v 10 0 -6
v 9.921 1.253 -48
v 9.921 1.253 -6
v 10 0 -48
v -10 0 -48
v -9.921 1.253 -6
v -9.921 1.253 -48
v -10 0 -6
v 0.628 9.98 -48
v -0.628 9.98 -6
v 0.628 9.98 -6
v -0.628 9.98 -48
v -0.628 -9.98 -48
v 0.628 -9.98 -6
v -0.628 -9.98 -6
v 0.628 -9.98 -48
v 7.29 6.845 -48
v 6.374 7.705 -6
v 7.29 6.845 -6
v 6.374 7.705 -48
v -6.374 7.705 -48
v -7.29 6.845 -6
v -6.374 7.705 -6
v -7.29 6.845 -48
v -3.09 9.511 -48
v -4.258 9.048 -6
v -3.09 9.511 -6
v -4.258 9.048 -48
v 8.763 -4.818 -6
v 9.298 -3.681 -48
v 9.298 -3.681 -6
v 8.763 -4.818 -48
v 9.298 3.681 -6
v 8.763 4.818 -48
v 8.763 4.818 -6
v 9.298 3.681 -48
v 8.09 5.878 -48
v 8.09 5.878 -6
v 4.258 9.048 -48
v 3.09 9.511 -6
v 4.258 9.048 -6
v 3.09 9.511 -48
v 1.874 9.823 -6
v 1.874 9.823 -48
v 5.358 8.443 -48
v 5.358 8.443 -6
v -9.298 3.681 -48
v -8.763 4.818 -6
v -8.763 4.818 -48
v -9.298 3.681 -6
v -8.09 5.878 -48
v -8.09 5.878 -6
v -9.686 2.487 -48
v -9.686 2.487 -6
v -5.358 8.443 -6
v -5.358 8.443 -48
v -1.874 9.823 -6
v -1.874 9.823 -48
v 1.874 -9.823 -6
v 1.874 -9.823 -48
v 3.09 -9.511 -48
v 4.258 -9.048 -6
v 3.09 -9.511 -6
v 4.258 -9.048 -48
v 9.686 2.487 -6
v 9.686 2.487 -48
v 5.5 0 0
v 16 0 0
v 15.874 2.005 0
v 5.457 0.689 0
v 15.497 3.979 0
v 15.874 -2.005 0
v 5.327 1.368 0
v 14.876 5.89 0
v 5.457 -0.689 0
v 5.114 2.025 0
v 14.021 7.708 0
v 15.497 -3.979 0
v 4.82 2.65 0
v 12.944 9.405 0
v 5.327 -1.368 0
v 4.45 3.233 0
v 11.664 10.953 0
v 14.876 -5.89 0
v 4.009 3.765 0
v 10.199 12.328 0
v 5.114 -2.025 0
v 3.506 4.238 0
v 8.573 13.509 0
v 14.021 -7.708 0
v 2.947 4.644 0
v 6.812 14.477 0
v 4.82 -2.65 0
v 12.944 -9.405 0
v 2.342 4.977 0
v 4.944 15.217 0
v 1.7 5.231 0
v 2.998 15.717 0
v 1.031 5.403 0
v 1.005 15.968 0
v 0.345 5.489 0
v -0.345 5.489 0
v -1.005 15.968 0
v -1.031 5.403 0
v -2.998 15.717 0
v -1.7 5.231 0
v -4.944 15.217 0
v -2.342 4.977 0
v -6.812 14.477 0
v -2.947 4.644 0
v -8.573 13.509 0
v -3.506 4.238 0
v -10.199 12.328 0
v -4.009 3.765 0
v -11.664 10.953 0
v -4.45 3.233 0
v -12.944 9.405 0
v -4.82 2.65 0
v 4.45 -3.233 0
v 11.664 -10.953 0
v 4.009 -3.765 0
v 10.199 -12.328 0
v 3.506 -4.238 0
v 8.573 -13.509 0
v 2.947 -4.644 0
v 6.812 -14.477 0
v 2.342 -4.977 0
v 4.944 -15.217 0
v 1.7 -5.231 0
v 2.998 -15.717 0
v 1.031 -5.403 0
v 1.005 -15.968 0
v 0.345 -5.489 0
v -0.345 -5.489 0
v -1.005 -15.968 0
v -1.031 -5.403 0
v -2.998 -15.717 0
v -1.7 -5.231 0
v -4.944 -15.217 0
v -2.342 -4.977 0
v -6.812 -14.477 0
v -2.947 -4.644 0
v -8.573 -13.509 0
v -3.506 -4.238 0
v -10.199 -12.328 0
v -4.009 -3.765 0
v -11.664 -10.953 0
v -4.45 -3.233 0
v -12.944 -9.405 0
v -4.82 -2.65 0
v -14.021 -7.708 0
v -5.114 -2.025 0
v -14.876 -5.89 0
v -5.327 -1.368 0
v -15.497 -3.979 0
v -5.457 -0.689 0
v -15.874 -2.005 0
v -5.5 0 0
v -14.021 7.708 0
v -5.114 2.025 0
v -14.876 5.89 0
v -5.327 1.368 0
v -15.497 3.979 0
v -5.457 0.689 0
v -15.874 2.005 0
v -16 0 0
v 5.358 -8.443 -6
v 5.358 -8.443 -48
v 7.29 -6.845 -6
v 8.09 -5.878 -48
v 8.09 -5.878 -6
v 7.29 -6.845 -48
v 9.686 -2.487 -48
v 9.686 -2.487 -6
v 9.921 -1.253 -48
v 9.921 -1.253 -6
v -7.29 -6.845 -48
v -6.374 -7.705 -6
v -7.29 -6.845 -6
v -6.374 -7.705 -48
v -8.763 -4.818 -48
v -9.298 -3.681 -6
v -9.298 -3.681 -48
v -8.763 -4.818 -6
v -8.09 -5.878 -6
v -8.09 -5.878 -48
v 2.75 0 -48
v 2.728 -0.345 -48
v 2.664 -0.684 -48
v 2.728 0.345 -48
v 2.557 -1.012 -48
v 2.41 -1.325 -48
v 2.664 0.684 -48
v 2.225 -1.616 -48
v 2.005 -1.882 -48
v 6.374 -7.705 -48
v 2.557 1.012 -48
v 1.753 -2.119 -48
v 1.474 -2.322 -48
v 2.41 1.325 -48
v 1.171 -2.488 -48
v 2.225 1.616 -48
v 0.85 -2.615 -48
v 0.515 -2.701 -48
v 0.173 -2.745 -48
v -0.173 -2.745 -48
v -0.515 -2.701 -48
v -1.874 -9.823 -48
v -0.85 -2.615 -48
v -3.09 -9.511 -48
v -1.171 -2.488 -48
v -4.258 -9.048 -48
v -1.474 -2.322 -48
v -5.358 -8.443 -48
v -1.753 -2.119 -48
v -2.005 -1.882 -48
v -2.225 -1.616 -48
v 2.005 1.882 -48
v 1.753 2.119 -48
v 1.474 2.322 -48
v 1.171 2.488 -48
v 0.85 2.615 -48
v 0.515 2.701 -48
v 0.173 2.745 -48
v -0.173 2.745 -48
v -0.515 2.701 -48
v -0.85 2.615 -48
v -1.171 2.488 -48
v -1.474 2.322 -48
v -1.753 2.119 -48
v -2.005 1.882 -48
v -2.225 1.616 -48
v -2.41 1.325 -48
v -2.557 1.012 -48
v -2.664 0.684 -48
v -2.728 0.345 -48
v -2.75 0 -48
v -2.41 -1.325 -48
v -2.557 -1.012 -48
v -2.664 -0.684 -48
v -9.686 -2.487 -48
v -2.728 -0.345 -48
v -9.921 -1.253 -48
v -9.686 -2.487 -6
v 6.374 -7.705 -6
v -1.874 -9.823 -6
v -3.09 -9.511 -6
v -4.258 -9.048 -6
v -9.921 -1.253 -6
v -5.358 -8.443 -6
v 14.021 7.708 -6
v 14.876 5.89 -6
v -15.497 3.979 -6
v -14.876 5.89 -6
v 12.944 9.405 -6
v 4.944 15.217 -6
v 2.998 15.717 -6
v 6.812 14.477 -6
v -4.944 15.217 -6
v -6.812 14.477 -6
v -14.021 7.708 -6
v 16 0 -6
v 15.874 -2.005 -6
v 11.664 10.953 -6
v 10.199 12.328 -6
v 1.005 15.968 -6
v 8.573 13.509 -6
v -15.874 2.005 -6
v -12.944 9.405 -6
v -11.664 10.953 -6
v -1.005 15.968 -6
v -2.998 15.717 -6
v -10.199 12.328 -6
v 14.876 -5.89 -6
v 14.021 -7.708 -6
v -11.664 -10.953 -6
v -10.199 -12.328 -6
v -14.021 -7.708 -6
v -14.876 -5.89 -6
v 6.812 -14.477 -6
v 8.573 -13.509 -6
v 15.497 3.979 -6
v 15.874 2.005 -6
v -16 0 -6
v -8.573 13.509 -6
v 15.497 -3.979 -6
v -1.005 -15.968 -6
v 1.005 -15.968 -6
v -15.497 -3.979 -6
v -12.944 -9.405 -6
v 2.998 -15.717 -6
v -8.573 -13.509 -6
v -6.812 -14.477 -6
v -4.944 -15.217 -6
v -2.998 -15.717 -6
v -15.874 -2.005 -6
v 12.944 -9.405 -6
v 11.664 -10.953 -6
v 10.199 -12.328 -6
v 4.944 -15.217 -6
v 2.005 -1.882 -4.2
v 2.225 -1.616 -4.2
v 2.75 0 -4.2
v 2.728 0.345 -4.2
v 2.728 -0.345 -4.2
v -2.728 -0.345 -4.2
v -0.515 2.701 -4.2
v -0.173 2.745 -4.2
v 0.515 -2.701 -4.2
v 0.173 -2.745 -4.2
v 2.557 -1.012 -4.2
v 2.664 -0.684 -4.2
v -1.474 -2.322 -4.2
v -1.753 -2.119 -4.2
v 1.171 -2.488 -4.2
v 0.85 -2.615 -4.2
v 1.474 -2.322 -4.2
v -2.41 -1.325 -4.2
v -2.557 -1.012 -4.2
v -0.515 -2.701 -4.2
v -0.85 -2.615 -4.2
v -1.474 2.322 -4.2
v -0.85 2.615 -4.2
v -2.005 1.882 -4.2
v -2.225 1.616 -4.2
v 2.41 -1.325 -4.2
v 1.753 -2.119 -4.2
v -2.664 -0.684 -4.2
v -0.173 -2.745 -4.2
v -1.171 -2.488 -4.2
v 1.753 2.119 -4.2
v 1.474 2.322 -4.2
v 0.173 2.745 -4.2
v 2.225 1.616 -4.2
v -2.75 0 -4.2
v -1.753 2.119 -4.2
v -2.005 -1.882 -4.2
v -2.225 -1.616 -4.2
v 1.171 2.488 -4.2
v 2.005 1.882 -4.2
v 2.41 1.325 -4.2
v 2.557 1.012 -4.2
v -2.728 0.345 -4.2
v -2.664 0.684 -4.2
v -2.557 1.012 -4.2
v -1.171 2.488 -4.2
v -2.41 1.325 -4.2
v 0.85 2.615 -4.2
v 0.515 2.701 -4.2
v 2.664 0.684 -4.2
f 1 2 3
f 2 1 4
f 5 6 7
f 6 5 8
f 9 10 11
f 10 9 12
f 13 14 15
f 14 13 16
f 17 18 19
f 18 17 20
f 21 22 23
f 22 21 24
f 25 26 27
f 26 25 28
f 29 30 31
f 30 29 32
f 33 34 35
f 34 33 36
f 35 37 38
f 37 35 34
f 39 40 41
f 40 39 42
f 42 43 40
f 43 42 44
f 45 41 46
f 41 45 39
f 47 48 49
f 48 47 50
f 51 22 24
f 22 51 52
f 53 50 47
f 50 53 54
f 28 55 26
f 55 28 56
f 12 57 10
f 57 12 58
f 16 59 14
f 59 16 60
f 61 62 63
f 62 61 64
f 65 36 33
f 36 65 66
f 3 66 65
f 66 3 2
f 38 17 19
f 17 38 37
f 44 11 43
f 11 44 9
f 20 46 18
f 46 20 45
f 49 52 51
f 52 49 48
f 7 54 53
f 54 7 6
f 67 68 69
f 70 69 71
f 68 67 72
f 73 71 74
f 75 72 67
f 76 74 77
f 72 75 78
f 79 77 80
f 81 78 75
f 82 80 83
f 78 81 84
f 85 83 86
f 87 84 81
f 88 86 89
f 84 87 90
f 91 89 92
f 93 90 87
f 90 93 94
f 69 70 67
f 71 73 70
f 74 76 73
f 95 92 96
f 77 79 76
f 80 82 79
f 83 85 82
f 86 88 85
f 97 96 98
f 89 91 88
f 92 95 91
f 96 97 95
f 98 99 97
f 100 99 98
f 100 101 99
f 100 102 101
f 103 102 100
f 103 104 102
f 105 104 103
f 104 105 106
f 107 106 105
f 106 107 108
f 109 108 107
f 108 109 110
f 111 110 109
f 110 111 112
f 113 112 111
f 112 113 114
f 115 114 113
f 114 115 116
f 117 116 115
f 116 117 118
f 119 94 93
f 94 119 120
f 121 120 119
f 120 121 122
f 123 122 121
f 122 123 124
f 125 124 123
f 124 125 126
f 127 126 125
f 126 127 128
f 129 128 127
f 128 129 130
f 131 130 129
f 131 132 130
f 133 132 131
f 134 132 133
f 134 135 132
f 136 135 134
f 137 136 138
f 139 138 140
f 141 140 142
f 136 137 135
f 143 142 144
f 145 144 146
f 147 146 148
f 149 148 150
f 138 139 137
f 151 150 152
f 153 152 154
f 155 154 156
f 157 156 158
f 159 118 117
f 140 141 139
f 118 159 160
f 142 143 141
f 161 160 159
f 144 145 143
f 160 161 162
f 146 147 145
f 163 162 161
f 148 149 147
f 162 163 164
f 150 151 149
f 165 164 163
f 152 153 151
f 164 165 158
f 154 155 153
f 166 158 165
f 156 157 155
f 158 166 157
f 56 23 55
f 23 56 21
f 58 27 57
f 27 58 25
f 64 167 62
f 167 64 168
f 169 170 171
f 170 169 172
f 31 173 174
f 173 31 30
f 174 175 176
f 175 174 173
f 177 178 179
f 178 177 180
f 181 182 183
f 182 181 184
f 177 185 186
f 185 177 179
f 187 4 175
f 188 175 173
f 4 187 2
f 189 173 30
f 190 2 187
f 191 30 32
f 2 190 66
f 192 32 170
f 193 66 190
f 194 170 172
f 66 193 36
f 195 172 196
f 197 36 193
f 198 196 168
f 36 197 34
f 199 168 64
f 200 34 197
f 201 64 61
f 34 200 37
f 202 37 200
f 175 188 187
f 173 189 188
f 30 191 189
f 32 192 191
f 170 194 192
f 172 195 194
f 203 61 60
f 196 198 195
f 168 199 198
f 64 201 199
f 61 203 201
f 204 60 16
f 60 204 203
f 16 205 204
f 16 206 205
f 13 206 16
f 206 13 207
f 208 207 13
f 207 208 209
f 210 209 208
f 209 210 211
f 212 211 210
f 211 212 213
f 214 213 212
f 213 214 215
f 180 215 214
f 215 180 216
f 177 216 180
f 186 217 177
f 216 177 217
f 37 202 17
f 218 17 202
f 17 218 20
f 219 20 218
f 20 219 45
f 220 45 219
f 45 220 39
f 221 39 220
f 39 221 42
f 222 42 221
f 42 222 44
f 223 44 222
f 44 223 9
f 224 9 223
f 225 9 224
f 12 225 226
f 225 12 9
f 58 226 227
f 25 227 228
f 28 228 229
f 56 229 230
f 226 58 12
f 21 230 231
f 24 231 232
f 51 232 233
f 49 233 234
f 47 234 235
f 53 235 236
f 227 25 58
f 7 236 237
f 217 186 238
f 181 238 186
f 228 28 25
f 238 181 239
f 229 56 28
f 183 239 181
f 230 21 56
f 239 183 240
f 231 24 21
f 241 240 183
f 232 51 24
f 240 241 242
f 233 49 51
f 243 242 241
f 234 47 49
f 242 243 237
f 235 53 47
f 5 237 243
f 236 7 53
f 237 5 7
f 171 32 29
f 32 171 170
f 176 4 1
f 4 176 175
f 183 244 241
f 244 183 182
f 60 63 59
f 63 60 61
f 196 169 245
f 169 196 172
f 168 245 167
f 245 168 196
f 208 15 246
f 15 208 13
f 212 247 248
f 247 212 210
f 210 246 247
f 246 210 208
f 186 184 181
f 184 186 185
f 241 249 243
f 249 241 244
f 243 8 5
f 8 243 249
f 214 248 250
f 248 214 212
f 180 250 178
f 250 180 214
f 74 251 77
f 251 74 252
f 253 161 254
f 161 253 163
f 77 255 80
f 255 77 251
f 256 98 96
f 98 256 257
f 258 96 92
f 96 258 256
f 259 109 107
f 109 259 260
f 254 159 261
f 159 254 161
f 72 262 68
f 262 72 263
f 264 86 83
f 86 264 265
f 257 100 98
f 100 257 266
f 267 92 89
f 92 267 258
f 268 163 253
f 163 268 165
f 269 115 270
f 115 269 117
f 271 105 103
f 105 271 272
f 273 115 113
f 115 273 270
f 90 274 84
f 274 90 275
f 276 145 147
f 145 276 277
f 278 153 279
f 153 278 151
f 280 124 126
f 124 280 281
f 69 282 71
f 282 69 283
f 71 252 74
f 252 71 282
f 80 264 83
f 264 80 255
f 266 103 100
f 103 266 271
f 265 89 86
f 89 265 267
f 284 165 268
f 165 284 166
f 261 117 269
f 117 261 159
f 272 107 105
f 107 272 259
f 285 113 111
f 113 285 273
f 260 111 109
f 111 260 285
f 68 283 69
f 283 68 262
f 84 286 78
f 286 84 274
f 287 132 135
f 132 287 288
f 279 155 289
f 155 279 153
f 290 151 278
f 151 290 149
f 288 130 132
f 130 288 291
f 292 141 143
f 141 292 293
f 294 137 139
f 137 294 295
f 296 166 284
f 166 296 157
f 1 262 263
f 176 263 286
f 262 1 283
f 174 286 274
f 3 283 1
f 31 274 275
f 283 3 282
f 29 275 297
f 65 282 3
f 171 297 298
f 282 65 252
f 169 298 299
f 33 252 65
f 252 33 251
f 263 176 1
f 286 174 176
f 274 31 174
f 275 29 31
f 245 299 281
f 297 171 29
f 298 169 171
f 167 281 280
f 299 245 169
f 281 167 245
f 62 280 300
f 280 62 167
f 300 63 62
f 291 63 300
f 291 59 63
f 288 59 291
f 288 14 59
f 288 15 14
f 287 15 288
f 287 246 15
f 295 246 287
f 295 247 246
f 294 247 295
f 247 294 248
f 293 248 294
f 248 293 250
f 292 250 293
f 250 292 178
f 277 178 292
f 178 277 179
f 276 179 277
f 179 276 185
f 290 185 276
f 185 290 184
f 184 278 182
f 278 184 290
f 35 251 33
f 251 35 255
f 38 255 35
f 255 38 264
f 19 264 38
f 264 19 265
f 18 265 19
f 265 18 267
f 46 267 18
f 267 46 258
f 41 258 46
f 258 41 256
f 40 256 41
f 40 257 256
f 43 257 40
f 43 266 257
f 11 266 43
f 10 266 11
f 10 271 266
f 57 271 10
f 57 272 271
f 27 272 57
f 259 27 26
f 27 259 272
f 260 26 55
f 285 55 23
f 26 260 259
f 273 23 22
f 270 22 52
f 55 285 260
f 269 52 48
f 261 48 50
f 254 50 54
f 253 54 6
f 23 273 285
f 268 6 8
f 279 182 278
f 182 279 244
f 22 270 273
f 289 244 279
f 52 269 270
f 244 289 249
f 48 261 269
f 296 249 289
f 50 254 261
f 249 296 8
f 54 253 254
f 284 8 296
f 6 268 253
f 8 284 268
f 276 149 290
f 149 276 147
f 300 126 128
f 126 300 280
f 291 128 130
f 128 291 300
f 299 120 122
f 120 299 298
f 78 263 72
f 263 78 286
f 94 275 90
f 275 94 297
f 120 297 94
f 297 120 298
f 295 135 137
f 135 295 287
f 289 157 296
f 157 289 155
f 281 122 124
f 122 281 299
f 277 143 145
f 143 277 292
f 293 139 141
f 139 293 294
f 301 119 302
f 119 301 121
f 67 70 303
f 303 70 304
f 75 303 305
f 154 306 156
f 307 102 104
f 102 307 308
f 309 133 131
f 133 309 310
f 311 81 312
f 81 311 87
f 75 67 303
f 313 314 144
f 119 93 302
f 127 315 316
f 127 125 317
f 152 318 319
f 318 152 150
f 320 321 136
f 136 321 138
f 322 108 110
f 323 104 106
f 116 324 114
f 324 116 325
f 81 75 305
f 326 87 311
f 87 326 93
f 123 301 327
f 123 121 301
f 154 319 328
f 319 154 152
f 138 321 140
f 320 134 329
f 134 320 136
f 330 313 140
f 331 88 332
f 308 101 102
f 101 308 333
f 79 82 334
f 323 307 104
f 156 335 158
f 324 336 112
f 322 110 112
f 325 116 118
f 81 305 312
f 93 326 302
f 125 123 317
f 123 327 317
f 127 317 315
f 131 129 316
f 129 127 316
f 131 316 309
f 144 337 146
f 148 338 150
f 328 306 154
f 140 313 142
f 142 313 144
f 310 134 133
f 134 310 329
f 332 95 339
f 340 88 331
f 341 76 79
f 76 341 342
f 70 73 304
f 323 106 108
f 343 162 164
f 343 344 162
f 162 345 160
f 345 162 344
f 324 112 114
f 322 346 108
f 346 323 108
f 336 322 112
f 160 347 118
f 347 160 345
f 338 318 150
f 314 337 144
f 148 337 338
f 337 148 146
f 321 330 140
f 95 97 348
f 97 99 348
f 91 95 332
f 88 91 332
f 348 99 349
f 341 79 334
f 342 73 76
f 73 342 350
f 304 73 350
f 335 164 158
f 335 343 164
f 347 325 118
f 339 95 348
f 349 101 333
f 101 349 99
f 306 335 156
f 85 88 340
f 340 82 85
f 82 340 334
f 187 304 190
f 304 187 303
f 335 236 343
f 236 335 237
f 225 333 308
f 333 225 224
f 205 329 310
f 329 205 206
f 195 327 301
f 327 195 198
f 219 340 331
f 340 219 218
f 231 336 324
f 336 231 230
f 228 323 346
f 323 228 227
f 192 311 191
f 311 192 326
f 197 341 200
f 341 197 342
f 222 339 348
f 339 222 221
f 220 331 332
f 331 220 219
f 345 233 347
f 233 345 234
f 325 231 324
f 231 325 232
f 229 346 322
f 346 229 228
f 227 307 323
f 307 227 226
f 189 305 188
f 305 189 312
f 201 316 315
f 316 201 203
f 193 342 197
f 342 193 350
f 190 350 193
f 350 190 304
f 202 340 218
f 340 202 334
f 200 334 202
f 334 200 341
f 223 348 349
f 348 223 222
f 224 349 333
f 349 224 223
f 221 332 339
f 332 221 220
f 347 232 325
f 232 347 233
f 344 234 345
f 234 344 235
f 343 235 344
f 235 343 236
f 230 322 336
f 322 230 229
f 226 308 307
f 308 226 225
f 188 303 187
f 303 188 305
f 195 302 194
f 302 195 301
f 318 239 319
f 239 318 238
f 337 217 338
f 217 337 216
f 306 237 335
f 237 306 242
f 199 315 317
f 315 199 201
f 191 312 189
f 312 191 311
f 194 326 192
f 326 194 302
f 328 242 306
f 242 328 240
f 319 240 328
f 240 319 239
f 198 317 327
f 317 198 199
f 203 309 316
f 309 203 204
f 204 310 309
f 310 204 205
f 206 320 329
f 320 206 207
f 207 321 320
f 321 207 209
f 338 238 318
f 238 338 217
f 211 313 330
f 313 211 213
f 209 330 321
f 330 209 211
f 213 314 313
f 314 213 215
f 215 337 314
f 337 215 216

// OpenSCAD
$fn = 50;


difference() {
	union() {
		translate(v = [0, 0, -48.0000000000]) {
			cylinder(h = 48, r = 10.0000000000);
		}
		translate(v = [0, 0, -6.0000000000]) {
			cylinder(h = 6, r = 16.0000000000);
		}
	}
	union() {
		translate(v = [0, 0, 0]) {
			rotate(a = [0, 0, 0]) {
				difference() {
					union() {
						#translate(v = [0, 0, -48.0000000000]) {
							cylinder(h = 48, r = 2.2500000000);
						}
						#translate(v = [0, 0, -4.2000000000]) {
							cylinder(h = 4.2000000000, r = 10.0000000000, r1 = 2.7500000000, r2 = 5.5000000000);
						}
						#translate(v = [0, 0, -48.0000000000]) {
							cylinder(h = 48, r = 2.7500000000);
						}
						#translate(v = [0, 0, -48.0000000000]) {
							cylinder(h = 48, r = 2.2500000000);
						}
					}
					union();
				}
			}
		}
	}
}
